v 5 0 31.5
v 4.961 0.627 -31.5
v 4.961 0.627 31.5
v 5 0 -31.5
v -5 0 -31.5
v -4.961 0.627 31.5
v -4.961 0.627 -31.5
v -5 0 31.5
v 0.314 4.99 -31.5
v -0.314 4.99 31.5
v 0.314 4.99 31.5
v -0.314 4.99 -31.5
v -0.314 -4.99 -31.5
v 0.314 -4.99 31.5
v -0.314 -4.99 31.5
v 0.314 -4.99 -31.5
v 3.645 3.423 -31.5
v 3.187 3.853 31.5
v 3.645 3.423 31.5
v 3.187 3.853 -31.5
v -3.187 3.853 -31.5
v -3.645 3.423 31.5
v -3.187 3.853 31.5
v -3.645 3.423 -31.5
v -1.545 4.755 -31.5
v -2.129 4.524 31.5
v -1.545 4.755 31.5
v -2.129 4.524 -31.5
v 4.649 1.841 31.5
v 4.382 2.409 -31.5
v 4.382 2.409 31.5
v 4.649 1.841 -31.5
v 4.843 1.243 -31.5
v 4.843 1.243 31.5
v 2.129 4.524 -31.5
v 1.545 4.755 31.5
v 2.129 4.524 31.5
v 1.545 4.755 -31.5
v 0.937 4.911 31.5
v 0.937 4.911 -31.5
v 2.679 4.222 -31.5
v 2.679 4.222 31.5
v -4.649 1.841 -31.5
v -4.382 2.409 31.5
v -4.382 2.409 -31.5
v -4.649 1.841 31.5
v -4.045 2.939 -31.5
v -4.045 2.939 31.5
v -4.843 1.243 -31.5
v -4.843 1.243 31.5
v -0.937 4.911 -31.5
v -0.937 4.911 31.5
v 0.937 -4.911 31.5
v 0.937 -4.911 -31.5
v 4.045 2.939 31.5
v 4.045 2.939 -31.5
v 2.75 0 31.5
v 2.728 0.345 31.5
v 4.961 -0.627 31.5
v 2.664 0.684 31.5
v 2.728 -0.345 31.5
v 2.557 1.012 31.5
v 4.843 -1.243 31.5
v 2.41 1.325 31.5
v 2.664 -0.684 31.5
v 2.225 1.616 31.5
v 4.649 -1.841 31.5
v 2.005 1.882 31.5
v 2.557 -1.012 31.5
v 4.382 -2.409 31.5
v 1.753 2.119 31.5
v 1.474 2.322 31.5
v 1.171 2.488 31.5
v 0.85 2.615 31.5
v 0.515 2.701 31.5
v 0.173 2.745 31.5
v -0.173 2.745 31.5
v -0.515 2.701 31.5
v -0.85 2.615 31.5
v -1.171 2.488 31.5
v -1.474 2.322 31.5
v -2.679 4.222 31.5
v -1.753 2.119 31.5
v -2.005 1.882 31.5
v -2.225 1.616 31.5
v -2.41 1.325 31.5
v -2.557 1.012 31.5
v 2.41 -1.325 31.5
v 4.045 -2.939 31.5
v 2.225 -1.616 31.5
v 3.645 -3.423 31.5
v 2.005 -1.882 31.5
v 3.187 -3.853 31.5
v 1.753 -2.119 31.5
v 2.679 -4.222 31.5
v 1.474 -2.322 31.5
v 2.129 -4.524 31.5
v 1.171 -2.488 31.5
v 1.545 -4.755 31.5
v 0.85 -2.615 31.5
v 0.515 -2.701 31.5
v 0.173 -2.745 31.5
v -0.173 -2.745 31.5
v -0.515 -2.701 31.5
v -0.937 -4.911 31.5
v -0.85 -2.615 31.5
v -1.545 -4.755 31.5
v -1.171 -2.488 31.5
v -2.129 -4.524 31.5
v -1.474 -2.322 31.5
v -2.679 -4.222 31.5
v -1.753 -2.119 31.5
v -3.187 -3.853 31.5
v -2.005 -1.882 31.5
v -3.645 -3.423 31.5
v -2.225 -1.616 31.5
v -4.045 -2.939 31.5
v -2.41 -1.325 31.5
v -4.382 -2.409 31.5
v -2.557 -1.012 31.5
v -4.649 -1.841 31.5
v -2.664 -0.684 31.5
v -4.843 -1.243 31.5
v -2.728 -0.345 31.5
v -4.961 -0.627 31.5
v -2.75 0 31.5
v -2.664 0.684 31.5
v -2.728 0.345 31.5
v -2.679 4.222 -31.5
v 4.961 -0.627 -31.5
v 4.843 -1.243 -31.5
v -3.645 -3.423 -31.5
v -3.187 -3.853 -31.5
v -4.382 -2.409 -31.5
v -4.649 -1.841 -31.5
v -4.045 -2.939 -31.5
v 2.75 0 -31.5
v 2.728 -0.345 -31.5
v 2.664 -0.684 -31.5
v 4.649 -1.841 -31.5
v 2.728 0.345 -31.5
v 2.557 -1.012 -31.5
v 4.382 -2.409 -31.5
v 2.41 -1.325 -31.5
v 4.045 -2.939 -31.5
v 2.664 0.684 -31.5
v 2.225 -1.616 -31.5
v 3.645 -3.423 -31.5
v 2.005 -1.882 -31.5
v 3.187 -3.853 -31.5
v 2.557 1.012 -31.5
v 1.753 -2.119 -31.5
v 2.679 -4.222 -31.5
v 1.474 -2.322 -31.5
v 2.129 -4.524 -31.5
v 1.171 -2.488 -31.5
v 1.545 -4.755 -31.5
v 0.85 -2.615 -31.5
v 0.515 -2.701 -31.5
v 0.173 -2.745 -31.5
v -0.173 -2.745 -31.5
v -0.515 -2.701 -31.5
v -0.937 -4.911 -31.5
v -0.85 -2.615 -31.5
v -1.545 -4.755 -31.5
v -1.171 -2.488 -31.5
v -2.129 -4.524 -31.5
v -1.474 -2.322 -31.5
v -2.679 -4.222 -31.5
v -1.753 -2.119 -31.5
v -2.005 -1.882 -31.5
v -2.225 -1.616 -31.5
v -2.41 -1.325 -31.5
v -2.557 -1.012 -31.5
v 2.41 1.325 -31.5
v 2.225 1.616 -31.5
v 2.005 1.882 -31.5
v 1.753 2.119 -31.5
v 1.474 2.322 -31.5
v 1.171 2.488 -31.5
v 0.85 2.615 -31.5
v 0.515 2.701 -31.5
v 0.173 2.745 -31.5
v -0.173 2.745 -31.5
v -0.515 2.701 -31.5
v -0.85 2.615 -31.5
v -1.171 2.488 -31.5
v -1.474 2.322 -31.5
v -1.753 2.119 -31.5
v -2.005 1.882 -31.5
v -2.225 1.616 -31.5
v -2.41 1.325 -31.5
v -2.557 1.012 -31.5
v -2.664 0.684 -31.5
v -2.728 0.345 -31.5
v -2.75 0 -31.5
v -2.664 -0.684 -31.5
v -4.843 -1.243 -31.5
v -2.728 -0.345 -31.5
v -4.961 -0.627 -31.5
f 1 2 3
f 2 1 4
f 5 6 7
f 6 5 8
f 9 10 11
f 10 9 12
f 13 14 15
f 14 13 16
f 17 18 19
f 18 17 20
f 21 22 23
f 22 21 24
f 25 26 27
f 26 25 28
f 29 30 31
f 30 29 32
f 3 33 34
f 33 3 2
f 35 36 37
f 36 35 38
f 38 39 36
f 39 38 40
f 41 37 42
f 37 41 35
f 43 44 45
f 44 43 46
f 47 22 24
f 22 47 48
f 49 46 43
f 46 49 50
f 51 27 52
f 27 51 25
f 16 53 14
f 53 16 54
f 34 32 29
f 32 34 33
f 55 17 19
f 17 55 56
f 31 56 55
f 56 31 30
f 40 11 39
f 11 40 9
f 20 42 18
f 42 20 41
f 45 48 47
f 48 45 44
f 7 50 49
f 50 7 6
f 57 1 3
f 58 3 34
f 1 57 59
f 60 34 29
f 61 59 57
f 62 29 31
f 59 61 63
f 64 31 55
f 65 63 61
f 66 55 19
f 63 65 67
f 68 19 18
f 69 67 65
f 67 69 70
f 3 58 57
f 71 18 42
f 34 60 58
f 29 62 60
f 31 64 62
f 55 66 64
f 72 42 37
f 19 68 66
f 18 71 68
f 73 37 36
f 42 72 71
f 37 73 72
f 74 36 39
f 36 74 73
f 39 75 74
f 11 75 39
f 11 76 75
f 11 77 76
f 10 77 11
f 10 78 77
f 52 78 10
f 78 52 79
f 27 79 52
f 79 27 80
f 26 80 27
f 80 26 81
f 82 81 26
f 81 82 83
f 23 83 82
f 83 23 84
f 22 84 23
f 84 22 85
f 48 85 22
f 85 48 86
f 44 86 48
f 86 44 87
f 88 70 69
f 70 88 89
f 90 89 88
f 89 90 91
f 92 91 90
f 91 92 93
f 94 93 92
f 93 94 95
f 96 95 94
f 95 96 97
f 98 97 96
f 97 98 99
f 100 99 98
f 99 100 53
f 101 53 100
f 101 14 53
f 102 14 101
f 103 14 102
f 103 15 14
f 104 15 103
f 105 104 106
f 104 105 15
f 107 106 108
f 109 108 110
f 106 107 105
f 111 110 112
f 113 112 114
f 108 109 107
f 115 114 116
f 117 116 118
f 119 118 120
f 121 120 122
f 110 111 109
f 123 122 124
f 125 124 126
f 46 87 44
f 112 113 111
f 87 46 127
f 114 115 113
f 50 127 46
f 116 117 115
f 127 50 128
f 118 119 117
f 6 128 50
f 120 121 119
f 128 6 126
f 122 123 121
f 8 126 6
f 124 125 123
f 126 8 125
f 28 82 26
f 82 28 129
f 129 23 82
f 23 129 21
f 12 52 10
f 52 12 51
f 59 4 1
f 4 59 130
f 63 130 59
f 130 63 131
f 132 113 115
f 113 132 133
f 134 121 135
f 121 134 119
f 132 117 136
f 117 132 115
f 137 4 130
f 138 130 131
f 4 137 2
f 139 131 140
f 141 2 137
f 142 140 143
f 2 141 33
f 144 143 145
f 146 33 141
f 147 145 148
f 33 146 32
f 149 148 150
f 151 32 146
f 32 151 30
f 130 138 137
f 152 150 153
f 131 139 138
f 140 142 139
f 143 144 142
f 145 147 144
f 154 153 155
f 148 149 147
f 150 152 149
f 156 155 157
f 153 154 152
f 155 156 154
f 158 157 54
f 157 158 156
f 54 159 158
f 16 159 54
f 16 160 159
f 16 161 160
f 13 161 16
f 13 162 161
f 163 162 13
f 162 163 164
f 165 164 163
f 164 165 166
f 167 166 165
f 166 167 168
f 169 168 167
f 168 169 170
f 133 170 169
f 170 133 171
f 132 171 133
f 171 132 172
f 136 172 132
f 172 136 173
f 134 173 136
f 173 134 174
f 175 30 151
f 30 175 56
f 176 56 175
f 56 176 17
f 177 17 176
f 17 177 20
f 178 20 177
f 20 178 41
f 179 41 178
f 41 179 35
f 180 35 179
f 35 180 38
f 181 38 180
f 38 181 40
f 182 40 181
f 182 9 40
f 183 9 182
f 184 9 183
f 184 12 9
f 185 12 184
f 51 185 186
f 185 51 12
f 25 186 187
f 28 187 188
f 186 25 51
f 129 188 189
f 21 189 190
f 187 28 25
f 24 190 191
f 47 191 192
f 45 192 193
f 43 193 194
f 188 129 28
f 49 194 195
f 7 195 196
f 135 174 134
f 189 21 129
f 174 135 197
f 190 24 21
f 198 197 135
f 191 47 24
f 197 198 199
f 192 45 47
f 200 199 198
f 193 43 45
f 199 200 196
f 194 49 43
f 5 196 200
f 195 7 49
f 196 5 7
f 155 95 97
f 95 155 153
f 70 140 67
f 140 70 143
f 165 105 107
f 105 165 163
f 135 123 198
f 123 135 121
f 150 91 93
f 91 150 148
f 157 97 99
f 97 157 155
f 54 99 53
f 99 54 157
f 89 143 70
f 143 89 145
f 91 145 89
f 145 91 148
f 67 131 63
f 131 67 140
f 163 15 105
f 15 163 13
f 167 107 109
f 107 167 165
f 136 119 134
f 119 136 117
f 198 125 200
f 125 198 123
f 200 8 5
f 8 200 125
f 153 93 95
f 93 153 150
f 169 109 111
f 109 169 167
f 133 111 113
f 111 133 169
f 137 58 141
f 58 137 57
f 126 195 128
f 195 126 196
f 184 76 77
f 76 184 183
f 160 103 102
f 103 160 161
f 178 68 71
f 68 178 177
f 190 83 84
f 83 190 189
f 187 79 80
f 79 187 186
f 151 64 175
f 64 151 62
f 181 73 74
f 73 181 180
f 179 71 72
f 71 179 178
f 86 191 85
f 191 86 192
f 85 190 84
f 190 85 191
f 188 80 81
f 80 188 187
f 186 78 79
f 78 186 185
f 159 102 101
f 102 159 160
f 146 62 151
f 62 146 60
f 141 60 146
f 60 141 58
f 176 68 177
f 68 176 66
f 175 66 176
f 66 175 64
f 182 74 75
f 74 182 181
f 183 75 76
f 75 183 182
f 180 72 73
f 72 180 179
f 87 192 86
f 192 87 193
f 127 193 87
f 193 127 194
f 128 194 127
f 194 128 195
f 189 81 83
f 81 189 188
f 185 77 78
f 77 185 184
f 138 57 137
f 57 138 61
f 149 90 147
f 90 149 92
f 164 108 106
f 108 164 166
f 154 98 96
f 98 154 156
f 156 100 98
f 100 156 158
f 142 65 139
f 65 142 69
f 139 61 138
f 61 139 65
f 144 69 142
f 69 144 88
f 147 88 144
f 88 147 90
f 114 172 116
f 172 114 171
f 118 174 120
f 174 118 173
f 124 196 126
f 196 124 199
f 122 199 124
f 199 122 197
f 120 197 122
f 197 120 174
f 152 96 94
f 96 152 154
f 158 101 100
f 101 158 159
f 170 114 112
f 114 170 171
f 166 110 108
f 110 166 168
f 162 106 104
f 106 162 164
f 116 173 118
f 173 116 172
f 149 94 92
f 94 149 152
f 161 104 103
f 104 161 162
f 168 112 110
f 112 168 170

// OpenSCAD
$fn = 50;


difference() {
	union() {
		translate(v = [0, 0, -31.5000000000]) {
			cylinder(h = 63, r = 5.0000000000);
		}
	}
	union() {
		translate(v = [0, 0, -100.0000000000]) {
			cylinder(h = 200, r = 2.7500000000);
		}
	}
}
